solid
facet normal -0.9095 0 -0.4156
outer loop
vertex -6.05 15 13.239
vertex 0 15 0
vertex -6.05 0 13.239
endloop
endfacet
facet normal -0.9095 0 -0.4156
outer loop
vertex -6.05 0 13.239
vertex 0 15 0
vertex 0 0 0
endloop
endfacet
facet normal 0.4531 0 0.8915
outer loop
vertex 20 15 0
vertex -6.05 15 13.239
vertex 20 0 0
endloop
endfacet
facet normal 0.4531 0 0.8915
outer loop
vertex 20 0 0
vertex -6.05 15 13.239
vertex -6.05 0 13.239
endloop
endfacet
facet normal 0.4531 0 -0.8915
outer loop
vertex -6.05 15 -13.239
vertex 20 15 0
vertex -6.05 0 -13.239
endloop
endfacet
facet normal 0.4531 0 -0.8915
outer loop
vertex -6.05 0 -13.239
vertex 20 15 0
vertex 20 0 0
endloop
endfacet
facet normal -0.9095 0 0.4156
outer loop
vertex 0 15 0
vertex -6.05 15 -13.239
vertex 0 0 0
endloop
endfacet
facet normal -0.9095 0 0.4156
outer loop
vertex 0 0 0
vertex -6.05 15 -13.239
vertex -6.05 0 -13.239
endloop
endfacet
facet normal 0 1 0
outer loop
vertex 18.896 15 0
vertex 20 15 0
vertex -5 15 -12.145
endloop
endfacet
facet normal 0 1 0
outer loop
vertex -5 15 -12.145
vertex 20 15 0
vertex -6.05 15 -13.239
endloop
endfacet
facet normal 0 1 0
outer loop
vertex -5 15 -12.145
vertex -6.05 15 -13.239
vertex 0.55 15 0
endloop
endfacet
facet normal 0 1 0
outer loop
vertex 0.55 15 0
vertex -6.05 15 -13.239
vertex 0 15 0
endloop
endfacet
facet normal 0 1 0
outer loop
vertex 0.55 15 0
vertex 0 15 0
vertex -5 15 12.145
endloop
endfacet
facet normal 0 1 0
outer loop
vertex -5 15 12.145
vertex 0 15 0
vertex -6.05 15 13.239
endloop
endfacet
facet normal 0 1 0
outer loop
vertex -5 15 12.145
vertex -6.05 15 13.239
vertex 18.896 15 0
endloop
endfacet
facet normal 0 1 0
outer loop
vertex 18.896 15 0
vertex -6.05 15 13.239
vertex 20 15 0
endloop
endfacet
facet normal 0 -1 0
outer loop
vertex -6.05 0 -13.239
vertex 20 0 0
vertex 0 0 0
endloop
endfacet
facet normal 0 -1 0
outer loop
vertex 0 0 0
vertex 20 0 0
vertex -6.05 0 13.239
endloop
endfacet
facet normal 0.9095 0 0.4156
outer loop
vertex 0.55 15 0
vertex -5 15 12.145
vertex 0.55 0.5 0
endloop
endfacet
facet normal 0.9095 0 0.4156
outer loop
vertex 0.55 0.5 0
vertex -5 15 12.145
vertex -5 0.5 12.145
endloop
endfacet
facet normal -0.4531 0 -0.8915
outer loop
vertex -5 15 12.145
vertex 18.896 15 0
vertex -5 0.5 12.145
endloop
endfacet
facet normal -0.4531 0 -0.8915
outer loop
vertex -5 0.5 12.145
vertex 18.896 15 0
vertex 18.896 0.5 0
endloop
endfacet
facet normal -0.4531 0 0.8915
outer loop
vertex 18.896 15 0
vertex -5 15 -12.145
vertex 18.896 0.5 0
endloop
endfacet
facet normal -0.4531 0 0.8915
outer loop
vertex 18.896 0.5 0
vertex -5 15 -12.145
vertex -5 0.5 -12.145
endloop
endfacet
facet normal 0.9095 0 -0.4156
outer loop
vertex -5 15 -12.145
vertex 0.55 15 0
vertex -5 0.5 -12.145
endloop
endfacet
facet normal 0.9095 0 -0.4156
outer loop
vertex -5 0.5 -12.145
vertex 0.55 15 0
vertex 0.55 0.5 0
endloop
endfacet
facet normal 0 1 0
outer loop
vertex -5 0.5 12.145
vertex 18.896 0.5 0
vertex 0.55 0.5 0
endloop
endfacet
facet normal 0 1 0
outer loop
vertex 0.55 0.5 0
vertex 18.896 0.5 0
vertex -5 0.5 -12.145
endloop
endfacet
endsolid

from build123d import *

# Parameters (mm, degrees)
SALIENTE_EXTRUIR1_DEPTH = 15
VACIADO1_T              = -0.5


with BuildPart() as part:
    # Croquis2 → Saliente-Extruir1 (new body)
    with BuildSketch(Plane(origin=(0, 0, 0), x_dir=(1, 0, 0), z_dir=(0, 1, 0))):
        Polygon((20, 0), (-6.05, 13.239344826), (0, 0), (-6.05, -13.239344826), align=None)
    extrude(amount=SALIENTE_EXTRUIR1_DEPTH)

    # Vaciado1
    vaciado1_openings = [part.faces().sort_by_distance(p)[0] for p in [
        (4.65, 15, 0),
    ]]
    offset(amount=VACIADO1_T, openings=vaciado1_openings, kind=Kind.INTERSECTION)


solid = part.part
